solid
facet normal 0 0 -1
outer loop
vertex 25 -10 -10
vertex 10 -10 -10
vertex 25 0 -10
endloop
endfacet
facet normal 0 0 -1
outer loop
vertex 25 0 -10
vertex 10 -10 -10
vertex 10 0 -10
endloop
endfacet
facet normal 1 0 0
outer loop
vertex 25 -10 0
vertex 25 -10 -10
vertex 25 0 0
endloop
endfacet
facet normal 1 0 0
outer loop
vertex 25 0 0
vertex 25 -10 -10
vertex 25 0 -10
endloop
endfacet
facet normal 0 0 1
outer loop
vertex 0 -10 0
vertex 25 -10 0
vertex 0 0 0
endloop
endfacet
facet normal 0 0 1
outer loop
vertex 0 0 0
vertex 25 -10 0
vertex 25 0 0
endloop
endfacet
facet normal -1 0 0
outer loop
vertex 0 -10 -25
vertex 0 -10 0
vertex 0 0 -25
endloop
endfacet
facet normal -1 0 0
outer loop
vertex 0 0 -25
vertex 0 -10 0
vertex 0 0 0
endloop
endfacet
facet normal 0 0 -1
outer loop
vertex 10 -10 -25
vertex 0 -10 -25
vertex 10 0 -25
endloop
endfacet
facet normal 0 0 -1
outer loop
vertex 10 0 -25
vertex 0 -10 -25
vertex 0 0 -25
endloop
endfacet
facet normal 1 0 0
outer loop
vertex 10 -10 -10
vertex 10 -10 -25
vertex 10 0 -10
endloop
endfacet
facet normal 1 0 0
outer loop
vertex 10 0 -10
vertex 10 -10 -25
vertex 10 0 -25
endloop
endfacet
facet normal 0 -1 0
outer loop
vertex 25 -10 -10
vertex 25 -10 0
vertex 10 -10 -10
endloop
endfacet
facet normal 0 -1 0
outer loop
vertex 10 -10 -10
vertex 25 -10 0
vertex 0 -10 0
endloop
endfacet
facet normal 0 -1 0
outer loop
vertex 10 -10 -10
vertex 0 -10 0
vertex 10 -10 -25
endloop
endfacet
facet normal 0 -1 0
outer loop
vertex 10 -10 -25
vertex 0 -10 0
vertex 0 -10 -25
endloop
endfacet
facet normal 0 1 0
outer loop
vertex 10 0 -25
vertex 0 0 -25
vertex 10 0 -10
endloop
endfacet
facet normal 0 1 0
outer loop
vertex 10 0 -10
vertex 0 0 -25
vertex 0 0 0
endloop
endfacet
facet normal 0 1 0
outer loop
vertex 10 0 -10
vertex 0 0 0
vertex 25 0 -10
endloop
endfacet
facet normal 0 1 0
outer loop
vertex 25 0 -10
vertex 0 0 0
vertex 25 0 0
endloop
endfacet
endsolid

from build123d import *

# Parameters (mm, degrees)
SKETCH1_W           = 15
SKETCH1_H           = 10
SKETCH1_W_2         = 10
SKETCH1_H_2         = 15
BOSS_EXTRUDE2_DEPTH = 10


with BuildPart() as part:
    # Sketch1 → Boss-Extrude2 (new body)
    with BuildSketch(Plane(origin=(0, 0, 0), x_dir=(1, 0, 0), z_dir=(0, 1, 0))):
        with Locations((17.5, 5)):
            Rectangle(SKETCH1_W, SKETCH1_H)
        with Locations((5, 5)):
            Rectangle(SKETCH1_W_2, SKETCH1_H)
        with Locations((5, 17.5)):
            Rectangle(SKETCH1_W_2, SKETCH1_H_2)
    extrude(amount=-BOSS_EXTRUDE2_DEPTH)


solid = part.part
